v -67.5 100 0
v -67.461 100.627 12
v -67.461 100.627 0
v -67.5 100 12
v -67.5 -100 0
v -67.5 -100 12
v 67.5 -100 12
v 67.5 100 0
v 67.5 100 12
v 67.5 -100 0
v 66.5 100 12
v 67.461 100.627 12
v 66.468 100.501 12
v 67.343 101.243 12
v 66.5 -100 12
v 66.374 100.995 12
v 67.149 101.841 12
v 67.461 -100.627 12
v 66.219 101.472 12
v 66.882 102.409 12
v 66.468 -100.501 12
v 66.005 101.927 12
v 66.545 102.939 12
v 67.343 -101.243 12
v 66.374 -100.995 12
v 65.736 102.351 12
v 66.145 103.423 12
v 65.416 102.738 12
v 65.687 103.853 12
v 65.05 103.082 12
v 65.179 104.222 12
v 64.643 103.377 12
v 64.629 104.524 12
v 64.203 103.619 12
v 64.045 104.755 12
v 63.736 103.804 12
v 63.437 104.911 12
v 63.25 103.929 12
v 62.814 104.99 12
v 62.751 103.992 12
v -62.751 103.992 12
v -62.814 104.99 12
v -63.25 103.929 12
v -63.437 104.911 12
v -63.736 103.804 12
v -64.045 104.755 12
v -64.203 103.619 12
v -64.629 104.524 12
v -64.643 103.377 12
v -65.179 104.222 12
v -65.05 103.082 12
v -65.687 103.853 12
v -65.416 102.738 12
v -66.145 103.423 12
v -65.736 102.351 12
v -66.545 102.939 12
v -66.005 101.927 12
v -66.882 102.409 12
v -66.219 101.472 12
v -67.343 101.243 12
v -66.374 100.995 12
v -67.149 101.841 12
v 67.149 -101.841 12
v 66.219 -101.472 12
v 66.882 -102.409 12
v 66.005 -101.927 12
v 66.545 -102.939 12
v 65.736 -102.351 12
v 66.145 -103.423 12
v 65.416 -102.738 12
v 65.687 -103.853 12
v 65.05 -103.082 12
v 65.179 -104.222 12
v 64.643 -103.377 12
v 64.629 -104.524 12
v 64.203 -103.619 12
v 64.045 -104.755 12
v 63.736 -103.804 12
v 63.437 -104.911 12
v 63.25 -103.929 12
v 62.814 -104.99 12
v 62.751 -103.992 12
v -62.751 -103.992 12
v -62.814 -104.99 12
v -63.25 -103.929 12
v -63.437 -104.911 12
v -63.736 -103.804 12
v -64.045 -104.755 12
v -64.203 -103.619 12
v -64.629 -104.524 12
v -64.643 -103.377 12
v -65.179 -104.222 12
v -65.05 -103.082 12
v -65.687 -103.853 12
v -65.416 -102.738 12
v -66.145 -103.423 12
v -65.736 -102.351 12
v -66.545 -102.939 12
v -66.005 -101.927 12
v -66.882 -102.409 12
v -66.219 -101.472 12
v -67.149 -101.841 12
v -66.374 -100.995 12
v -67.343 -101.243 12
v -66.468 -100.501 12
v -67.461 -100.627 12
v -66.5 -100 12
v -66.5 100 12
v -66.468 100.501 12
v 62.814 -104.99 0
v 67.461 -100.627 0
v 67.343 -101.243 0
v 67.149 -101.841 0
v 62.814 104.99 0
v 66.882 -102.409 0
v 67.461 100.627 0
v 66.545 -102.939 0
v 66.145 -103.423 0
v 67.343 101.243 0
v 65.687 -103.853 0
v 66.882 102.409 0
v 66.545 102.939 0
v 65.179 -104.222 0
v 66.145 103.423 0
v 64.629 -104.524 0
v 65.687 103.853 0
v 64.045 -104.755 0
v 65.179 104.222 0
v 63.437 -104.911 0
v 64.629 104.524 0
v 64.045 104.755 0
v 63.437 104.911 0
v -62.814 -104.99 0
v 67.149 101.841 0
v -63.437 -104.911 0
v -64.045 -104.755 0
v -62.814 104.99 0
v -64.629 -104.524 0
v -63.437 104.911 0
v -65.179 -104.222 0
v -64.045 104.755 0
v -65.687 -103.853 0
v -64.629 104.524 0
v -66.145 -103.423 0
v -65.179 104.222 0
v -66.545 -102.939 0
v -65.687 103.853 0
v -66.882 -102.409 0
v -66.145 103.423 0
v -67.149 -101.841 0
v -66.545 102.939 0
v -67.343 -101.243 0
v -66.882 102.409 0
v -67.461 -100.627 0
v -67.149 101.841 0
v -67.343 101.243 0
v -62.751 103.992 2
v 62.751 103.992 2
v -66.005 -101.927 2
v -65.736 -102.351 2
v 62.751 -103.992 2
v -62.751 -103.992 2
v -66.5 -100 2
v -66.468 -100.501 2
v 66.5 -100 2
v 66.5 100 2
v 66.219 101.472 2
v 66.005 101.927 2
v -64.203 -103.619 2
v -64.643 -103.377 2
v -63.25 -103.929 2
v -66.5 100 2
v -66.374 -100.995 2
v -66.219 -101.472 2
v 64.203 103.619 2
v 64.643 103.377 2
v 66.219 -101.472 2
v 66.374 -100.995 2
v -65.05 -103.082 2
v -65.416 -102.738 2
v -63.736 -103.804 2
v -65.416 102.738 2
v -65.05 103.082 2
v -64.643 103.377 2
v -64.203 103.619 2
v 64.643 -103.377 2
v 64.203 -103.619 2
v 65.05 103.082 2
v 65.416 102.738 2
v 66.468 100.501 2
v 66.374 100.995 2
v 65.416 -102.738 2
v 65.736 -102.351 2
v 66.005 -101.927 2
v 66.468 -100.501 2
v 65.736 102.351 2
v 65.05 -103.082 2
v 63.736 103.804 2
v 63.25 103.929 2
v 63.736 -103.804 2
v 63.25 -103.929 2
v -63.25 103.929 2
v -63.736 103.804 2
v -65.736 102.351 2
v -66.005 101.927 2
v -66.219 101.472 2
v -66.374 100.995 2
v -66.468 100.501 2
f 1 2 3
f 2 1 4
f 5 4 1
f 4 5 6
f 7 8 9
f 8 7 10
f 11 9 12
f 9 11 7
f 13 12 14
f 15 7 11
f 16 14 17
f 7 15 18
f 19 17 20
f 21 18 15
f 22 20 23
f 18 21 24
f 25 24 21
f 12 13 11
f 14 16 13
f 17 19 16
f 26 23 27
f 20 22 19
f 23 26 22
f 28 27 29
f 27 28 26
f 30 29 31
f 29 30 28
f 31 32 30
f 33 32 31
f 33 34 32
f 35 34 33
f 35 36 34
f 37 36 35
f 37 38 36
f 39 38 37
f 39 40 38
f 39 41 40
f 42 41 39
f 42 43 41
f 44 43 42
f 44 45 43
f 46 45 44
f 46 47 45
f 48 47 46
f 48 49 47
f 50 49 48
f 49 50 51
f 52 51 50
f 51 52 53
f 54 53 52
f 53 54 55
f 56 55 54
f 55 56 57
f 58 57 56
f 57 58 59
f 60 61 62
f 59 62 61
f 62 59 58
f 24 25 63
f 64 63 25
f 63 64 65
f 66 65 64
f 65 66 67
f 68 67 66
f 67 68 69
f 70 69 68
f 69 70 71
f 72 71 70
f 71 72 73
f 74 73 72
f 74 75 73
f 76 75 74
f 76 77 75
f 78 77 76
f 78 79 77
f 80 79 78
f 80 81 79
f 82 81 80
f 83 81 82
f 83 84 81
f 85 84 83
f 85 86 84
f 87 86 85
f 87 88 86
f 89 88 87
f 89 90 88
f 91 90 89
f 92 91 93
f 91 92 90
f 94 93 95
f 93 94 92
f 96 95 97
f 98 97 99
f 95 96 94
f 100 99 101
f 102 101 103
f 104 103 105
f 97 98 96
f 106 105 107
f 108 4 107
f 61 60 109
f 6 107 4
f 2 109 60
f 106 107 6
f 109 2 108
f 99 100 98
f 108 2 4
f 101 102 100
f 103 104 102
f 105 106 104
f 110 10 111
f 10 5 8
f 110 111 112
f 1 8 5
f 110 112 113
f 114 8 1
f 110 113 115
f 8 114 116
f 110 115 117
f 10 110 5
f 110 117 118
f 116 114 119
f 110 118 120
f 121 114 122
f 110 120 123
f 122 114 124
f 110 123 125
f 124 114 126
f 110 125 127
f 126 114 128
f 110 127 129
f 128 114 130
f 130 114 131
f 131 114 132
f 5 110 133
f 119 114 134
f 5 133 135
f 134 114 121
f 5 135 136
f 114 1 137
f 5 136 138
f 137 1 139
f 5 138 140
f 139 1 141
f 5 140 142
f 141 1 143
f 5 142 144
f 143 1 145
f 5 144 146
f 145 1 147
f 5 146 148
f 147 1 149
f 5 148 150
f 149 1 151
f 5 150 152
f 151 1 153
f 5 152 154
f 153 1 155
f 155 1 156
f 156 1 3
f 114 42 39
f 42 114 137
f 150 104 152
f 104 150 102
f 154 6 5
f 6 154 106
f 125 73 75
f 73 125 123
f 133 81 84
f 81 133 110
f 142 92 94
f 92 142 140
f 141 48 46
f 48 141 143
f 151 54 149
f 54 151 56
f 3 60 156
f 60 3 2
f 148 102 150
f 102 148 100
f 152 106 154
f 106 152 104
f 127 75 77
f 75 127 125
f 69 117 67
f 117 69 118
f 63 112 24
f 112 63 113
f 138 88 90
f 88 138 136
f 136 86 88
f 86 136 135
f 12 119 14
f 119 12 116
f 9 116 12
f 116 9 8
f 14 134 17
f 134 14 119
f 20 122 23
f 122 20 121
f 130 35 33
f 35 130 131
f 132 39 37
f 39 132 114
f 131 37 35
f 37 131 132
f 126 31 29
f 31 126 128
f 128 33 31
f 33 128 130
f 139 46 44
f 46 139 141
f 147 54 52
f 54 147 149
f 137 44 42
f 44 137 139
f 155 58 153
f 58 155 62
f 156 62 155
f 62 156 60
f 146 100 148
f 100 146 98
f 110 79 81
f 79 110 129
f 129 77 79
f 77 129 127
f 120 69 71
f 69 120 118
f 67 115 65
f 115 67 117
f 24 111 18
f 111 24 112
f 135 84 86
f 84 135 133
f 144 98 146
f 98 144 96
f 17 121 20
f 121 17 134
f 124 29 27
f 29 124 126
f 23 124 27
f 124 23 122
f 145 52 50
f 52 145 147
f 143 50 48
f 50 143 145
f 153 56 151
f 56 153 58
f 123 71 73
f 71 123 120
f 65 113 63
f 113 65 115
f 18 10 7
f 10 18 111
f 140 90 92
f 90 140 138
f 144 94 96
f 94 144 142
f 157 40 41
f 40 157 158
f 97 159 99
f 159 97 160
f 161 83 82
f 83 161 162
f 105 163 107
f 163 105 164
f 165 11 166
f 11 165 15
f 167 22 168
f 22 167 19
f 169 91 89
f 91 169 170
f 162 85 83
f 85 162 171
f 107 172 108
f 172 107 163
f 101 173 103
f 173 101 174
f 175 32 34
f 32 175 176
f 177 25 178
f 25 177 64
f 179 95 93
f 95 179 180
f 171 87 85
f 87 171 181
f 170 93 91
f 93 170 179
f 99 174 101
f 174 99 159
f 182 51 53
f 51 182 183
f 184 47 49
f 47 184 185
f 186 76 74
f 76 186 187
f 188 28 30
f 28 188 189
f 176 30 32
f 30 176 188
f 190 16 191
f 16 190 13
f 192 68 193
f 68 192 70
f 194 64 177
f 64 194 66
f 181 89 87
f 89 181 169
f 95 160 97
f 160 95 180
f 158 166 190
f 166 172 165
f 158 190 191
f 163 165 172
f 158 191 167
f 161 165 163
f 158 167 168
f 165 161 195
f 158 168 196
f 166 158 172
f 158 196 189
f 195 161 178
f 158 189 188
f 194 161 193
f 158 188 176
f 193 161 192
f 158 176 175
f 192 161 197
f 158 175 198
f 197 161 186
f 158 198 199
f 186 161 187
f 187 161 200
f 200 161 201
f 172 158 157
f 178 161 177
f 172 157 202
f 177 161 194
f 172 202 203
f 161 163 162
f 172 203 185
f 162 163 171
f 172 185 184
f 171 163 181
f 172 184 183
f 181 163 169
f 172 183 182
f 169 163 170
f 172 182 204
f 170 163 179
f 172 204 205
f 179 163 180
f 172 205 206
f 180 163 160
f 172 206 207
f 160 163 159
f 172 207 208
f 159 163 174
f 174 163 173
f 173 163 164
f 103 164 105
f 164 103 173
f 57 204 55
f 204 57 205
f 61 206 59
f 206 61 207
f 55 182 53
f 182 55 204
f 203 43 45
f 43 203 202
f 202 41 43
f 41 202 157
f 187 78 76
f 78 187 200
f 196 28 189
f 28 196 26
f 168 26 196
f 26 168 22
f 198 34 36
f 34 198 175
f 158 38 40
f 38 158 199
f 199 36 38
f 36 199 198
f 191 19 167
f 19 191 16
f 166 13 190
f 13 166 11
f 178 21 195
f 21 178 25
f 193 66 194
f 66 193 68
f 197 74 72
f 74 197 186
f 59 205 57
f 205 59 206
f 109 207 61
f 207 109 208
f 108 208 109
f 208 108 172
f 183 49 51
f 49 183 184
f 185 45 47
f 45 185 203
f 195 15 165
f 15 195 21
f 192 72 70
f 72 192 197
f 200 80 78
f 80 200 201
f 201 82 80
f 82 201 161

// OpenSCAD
$fn = 50;


difference() {
	union() {
		hull() {
			translate(v = [-62.5000000000, 100.0000000000, 0]) {
				cylinder(h = 12, r = 5);
			}
			translate(v = [62.5000000000, 100.0000000000, 0]) {
				cylinder(h = 12, r = 5);
			}
			translate(v = [-62.5000000000, -100.0000000000, 0]) {
				cylinder(h = 12, r = 5);
			}
			translate(v = [62.5000000000, -100.0000000000, 0]) {
				cylinder(h = 12, r = 5);
			}
		}
	}
	union() {
		translate(v = [0, 0, 2]) {
			hull() {
				translate(v = [-62.5000000000, 100.0000000000, 0]) {
					cylinder(h = 10, r = 4);
				}
				translate(v = [62.5000000000, 100.0000000000, 0]) {
					cylinder(h = 10, r = 4);
				}
				translate(v = [-62.5000000000, -100.0000000000, 0]) {
					cylinder(h = 10, r = 4);
				}
				translate(v = [62.5000000000, -100.0000000000, 0]) {
					cylinder(h = 10, r = 4);
				}
			}
		}
	}
}
